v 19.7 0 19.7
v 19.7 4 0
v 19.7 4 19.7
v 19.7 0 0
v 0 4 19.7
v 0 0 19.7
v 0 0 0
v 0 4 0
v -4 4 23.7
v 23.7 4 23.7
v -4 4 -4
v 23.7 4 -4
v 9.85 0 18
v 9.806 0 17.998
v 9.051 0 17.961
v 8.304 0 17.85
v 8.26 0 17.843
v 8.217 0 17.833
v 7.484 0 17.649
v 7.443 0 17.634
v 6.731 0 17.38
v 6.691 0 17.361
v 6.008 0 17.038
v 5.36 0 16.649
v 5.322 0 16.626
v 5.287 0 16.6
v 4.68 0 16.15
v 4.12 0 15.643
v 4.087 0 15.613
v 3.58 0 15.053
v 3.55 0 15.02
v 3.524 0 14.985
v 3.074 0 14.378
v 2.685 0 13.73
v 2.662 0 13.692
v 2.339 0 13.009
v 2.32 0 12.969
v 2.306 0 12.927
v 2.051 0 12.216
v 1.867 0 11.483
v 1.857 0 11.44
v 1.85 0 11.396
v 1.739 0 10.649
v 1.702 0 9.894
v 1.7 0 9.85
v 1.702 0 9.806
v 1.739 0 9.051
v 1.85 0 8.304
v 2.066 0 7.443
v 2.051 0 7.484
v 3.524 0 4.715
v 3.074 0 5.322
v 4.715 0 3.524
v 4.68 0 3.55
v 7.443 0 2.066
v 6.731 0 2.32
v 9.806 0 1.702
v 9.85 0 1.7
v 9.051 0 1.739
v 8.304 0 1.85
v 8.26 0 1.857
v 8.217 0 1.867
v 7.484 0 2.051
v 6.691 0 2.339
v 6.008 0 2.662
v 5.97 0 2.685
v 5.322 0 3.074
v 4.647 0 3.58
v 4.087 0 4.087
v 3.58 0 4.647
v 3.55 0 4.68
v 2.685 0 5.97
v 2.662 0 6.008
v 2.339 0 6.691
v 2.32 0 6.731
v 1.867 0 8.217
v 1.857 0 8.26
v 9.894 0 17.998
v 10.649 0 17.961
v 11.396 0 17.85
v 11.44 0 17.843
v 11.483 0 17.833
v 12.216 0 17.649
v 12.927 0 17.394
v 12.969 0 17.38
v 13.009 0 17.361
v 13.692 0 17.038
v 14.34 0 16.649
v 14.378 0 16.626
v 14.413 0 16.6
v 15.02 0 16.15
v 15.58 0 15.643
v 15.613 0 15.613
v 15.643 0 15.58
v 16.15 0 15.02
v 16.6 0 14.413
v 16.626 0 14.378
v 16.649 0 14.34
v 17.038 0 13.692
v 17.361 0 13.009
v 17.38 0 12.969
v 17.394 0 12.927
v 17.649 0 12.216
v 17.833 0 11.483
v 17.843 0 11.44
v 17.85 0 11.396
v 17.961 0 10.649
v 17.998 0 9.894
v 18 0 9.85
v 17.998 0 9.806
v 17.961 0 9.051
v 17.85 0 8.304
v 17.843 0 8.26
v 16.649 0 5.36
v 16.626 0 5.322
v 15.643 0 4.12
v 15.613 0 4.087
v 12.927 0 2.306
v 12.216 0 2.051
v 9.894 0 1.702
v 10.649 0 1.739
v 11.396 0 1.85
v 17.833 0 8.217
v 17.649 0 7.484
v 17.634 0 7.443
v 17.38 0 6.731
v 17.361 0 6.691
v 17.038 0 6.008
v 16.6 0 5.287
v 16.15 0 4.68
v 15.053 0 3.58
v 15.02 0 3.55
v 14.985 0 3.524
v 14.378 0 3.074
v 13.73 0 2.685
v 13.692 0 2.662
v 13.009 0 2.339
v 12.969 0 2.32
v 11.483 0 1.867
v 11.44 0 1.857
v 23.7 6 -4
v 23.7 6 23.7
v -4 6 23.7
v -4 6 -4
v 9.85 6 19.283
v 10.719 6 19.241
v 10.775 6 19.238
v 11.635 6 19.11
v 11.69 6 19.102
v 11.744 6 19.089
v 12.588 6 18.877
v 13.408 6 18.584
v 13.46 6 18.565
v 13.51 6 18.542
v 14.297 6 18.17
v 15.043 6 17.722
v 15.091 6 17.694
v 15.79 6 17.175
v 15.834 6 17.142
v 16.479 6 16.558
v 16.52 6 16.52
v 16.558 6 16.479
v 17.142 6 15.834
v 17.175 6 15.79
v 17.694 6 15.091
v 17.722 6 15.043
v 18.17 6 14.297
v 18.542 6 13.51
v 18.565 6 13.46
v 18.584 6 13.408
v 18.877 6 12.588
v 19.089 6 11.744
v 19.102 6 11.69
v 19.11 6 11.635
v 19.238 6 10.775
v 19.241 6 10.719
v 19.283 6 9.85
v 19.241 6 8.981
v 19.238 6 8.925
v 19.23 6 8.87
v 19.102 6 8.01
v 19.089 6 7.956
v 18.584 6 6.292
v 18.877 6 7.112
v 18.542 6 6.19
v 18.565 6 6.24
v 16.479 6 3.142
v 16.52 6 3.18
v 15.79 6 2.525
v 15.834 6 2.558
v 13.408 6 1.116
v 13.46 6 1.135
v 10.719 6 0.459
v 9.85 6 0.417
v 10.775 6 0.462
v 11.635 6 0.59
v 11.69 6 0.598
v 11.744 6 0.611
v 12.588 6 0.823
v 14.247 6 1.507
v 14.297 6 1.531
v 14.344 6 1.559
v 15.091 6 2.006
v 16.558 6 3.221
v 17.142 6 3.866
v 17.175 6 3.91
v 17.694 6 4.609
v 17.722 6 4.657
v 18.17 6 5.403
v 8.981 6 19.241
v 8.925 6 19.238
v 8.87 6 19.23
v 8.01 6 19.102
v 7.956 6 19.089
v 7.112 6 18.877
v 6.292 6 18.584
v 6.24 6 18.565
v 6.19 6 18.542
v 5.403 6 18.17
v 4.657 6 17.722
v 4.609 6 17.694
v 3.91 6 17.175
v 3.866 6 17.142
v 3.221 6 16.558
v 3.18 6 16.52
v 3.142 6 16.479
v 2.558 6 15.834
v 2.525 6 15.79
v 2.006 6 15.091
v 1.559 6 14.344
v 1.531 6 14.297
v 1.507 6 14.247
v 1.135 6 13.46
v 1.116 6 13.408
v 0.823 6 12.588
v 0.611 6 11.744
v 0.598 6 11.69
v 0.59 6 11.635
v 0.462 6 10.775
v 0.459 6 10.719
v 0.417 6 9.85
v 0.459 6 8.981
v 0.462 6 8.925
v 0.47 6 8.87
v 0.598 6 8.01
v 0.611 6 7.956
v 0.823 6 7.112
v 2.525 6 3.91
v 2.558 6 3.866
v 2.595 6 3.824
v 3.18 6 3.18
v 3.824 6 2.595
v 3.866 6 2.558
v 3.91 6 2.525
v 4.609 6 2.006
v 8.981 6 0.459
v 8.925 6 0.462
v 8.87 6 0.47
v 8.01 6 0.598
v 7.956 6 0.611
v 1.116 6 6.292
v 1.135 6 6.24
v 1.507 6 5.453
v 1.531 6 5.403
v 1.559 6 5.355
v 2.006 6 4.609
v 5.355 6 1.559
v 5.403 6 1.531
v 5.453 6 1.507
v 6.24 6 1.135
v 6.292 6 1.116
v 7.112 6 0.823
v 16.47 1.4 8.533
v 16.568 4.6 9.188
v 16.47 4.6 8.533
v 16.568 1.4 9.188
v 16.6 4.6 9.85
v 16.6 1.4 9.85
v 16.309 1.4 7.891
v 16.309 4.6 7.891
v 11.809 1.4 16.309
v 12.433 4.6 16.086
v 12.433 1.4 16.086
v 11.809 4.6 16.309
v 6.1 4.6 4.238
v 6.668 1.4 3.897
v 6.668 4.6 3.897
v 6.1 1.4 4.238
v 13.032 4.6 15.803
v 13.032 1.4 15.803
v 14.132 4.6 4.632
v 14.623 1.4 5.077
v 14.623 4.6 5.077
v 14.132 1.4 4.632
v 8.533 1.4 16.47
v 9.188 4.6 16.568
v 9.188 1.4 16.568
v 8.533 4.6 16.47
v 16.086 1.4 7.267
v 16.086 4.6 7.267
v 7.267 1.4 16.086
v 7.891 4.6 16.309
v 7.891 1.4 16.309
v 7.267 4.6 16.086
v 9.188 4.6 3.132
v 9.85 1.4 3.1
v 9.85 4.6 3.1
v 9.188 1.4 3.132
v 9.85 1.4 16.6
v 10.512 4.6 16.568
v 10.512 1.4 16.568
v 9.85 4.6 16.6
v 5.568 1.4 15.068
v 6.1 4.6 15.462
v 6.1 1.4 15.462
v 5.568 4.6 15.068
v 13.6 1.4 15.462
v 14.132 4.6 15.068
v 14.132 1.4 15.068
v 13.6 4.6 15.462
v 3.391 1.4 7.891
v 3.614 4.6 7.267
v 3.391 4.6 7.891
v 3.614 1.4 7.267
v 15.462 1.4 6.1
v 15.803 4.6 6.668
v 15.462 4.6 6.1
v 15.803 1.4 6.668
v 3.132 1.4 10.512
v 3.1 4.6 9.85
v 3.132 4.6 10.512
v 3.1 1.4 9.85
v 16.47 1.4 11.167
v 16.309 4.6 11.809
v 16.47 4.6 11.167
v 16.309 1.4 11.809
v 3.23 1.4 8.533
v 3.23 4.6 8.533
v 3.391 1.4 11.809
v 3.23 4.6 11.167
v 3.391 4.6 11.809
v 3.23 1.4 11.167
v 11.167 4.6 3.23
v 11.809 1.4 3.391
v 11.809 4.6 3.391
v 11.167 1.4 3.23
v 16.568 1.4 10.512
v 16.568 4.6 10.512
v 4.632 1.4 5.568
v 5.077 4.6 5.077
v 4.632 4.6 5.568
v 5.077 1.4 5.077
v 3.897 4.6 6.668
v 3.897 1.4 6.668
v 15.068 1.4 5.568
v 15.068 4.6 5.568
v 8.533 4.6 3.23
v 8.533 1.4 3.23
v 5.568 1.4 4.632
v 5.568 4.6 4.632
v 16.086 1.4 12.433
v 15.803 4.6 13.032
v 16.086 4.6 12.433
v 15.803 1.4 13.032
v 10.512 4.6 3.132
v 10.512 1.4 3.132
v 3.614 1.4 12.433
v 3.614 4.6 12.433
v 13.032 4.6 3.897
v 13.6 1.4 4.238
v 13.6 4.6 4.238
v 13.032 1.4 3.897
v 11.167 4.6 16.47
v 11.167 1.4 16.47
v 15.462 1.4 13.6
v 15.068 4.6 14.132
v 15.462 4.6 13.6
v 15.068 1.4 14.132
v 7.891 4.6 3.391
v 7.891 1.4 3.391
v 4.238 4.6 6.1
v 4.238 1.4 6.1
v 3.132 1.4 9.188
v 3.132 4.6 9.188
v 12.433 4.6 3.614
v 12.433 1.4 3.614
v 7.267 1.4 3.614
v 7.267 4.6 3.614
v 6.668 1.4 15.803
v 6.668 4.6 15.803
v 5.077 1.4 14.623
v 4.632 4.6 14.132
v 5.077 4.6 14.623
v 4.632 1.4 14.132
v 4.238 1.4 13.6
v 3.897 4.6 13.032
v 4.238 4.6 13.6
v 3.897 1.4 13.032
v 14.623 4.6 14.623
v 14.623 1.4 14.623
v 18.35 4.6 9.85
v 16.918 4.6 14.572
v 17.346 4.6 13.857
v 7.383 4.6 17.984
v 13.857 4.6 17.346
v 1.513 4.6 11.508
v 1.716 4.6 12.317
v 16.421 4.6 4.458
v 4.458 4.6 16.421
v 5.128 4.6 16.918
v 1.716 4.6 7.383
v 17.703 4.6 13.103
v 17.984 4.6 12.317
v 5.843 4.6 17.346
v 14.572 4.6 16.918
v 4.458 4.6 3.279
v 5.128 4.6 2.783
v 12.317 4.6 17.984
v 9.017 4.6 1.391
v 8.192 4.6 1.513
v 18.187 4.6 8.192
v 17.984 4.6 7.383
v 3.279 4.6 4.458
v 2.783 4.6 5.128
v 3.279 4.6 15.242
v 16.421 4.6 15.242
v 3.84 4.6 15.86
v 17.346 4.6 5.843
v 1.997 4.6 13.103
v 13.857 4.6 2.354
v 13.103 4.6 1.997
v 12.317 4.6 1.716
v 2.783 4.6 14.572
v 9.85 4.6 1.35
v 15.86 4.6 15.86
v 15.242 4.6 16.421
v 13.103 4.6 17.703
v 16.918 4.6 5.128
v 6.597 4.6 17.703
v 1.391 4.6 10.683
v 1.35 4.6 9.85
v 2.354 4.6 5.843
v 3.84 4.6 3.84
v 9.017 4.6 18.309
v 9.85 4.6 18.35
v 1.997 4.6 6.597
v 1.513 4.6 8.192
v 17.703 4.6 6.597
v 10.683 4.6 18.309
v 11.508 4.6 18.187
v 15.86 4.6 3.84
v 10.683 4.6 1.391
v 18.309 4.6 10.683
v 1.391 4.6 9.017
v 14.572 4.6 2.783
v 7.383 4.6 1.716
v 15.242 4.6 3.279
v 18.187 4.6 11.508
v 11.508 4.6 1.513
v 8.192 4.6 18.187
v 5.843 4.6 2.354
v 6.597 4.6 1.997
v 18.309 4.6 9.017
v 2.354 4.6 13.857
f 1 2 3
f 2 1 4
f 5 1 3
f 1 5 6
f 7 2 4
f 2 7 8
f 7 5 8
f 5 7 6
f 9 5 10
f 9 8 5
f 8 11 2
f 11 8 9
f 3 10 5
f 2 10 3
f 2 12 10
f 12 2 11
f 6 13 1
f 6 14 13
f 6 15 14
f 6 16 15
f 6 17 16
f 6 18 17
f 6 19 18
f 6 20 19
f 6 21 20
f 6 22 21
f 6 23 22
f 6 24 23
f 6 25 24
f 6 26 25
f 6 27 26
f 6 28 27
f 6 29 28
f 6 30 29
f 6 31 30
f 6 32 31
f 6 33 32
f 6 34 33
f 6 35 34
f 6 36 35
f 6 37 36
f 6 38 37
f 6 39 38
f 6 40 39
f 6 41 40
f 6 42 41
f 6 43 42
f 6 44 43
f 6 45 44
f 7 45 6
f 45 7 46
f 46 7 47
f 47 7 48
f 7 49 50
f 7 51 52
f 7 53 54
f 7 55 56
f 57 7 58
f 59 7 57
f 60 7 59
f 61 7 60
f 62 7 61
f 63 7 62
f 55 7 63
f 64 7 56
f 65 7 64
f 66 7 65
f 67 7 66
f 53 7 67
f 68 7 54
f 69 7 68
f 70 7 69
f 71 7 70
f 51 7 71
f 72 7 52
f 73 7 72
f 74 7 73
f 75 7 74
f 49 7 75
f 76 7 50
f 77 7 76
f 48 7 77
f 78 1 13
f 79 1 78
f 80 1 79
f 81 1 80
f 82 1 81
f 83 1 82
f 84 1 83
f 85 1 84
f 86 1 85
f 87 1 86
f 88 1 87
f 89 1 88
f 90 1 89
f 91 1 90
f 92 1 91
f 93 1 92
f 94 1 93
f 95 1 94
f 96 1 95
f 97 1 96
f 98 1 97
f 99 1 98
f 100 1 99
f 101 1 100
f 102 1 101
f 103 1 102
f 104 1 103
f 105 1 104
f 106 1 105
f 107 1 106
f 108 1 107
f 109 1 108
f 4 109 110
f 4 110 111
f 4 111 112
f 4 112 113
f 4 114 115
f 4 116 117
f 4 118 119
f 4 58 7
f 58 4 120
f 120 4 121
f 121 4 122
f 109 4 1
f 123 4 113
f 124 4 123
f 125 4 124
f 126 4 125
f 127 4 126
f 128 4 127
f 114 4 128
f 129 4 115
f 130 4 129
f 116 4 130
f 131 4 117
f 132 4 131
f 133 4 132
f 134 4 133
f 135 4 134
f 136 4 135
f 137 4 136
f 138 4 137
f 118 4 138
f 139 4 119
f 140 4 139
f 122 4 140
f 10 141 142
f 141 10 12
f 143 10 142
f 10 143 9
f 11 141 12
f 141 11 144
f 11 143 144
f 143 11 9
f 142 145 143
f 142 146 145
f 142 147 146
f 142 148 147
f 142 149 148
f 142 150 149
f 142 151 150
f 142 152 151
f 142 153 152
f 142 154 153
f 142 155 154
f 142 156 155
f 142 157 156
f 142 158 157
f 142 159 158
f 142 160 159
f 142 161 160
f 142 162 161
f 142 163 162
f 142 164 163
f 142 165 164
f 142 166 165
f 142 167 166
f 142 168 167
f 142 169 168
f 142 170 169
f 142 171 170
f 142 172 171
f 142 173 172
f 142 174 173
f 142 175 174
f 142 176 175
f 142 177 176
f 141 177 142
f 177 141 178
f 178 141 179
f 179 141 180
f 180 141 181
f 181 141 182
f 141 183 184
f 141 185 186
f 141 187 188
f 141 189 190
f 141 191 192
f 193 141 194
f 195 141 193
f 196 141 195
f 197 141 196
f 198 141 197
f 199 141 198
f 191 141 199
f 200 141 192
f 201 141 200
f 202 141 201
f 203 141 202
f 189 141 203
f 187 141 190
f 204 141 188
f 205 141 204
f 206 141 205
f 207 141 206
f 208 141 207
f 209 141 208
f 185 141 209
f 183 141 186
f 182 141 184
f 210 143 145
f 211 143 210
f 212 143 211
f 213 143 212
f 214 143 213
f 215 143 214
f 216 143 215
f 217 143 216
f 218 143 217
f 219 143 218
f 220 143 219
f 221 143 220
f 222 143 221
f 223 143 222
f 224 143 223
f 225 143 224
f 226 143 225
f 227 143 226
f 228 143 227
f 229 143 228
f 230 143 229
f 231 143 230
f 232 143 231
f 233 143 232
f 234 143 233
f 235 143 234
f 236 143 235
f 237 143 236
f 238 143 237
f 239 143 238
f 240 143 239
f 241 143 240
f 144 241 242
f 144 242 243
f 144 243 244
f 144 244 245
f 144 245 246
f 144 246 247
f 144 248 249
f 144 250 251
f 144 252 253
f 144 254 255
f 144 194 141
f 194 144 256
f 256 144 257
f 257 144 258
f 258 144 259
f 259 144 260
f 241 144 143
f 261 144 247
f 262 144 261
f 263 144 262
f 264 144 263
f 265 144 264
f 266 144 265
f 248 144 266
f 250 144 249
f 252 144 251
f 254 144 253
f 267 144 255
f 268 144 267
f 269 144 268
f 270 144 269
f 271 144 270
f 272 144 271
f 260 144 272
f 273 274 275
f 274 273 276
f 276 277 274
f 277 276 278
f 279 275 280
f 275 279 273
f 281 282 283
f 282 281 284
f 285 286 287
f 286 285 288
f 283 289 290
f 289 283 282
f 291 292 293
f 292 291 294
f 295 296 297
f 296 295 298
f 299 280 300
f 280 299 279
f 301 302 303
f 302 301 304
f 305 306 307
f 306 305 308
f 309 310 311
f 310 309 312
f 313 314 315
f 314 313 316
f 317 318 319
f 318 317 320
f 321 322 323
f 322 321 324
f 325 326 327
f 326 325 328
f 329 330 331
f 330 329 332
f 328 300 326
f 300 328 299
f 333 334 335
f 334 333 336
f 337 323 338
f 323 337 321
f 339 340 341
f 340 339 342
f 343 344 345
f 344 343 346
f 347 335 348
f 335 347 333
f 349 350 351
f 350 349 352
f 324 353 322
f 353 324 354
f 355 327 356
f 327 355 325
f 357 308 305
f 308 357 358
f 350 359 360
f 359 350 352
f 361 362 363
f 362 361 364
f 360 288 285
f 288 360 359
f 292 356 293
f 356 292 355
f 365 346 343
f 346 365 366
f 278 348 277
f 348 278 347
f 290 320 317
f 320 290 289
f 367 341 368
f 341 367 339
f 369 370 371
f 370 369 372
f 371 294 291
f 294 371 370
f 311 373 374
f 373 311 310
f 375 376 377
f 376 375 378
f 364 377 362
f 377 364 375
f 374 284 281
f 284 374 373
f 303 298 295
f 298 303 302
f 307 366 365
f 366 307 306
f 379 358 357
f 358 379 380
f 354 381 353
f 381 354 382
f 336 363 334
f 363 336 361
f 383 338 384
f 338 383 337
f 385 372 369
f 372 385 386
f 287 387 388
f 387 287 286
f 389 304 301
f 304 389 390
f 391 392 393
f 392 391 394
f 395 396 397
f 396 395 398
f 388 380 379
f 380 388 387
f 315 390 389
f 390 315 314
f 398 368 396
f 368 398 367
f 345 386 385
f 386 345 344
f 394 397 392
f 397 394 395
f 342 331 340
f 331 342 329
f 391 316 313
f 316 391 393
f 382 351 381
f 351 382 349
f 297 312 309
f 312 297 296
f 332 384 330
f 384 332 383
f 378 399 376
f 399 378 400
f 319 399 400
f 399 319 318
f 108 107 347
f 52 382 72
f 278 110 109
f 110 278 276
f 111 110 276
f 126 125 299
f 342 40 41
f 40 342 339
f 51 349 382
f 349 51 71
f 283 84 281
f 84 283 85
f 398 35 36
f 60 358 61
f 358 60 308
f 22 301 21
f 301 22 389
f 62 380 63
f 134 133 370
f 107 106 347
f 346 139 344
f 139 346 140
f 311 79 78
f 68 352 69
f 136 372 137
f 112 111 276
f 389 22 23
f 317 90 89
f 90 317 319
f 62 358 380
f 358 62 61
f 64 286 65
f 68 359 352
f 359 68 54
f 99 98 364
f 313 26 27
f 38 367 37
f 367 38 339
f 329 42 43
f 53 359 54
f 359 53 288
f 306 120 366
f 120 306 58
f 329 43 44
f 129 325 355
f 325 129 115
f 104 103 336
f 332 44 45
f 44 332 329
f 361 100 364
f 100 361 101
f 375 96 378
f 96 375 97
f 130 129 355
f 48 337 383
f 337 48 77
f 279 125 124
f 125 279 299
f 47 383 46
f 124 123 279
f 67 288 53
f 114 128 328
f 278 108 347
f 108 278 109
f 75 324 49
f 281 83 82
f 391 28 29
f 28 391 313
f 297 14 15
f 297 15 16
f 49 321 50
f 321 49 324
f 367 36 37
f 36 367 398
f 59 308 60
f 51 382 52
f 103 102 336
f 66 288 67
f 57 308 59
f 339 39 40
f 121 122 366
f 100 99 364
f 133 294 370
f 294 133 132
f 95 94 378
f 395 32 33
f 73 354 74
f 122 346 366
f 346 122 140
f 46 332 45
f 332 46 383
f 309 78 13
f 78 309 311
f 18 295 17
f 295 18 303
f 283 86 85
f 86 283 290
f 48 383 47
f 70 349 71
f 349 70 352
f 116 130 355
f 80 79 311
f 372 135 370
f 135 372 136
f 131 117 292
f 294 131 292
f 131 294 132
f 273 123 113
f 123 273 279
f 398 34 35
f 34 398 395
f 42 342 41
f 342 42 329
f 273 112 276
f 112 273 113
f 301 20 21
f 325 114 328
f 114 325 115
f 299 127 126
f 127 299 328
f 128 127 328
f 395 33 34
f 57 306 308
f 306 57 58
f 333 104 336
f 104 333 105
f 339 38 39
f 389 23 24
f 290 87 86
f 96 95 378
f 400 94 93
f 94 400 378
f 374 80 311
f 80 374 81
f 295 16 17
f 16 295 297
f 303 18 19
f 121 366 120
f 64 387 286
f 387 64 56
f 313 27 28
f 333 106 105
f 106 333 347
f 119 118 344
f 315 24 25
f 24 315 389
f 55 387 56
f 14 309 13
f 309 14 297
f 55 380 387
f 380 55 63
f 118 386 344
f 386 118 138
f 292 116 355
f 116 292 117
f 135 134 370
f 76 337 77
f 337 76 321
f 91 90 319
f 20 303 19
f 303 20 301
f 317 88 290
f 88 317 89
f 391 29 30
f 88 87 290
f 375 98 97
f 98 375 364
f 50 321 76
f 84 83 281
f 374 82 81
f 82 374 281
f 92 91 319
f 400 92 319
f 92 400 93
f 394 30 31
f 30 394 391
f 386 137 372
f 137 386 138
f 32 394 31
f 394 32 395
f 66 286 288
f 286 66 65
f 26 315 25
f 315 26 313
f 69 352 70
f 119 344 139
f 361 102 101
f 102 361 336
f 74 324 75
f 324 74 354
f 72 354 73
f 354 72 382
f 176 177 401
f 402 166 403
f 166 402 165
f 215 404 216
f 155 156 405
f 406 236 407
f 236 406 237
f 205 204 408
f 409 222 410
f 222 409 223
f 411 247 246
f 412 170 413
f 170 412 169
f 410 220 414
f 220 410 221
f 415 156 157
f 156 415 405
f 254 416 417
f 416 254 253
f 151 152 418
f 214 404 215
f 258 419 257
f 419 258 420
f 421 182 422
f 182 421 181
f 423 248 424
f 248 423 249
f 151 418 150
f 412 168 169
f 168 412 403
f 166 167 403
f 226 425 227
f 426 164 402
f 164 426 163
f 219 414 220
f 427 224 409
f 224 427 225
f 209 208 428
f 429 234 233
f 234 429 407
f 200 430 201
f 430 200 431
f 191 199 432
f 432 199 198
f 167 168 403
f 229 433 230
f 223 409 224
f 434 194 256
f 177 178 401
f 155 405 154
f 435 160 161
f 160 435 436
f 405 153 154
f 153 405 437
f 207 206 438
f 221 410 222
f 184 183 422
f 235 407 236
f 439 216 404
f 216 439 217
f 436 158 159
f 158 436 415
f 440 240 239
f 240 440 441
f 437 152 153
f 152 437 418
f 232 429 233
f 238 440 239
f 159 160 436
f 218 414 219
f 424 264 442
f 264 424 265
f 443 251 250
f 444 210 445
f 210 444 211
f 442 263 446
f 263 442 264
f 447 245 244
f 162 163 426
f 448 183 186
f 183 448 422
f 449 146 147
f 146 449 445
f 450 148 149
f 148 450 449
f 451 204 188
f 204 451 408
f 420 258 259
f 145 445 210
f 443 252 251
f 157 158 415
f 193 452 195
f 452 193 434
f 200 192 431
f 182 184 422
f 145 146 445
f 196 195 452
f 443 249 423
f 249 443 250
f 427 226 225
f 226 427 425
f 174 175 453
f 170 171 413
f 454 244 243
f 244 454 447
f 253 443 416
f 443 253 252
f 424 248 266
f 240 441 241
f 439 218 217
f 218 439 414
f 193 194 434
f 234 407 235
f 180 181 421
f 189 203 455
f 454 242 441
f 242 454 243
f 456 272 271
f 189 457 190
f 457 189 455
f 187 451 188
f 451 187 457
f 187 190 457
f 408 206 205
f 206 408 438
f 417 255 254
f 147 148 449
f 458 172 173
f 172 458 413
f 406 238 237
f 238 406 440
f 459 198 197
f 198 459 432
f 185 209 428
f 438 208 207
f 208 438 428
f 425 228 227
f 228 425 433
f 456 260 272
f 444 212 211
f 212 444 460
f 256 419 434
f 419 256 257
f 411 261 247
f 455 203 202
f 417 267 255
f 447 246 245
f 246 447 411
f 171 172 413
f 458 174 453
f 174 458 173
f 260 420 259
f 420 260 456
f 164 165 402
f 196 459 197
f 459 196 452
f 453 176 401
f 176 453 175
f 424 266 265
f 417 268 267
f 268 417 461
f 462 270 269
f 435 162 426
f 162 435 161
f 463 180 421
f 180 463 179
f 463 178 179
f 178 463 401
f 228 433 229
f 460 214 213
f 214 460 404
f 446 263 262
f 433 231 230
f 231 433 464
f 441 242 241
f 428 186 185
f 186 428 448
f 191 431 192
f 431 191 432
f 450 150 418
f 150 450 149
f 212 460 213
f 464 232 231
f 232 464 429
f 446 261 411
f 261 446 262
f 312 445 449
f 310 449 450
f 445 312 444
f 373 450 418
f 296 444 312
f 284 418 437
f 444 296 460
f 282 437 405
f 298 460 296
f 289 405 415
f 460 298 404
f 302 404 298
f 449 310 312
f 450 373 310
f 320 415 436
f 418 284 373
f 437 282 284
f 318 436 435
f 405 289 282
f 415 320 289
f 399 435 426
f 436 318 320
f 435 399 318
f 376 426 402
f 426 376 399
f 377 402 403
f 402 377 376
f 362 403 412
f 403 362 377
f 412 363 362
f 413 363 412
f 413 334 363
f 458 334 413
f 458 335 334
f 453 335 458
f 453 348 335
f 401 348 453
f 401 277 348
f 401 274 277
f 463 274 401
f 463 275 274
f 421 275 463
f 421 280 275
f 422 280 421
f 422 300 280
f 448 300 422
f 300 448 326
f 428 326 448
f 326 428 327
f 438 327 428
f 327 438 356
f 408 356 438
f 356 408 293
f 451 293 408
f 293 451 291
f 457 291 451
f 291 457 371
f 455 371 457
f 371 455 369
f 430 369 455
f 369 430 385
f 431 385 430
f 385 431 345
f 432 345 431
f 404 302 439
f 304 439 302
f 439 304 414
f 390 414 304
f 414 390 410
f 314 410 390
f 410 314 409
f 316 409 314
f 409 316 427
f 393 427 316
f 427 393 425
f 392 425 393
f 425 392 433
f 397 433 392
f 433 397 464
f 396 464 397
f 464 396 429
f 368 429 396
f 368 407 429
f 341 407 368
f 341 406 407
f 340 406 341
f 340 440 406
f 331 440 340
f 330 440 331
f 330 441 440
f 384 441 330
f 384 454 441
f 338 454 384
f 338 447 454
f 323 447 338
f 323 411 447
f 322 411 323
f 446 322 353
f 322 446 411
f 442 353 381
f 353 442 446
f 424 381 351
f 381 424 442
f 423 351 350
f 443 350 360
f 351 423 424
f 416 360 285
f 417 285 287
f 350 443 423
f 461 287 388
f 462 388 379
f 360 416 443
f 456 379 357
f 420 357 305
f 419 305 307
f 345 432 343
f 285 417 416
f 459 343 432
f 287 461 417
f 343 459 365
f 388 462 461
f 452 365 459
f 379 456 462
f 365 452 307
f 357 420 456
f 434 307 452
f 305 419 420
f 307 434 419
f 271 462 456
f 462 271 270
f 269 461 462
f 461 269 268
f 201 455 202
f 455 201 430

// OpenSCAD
// ============================================================
//  MSE-6 — Camera Viewport Bezel
//  Press-fit insert for the bottom shell front wall.
//  Provides a clear aperture for the IMX500 lens while
//  keeping the shell aesthetically closed.
//
//  Shell front wall: X=81–127mm (46mm wide), Z=10–43mm (33mm tall)
//  Wall thickness: ~4mm
//  Camera lens OD: 12.4mm (IMX500 dome)
//
//  Install: push into a 20×20mm square cutout in the shell
//           front wall, centred at X=104, Z=26 (mid-wall).
//           Glue or press-fit. Lens sits flush with outer face.
// ============================================================
$fn = 64;

// Shell wall aperture dimensions
aperture_w   = 20.0;   // square cutout width
aperture_h   = 20.0;   // square cutout height
wall_t       =  4.0;   // shell wall thickness (bezel depth)
flange_w     =  4.0;   // flange overhang on interior side
flange_t     =  2.0;   // flange thickness (stops bezel going too deep)

// Lens window
lens_d       = 13.5;   // clear aperture (IMX500 dome 12.4mm + 1.1mm clearance)
// Decorative outer ring
outer_d      = 17.0;   // chamfered outer ring OD on shell exterior face

// Press-fit body
body_w       = aperture_w - 0.3;  // slight undersize for press fit
body_h       = aperture_h - 0.3;
body_d       = wall_t;             // fills full wall thickness

module bezel() {
    difference() {
        union() {
            // Press-fit body
            cube([body_w, body_d, body_h]);

            // Interior flange (stops body from passing through)
            translate([-flange_w, body_d, -flange_w])
                cube([body_w + flange_w*2,
                      flange_t,
                      body_h + flange_w*2]);
        }

        // Lens aperture (centred in body)
        translate([body_w/2, -0.1, body_h/2])
            rotate([-90, 0, 0])
                cylinder(d = lens_d, h = body_d + flange_t + 0.2);

        // Chamfer on lens aperture exterior face
        translate([body_w/2, -0.1, body_h/2])
            rotate([-90, 0, 0])
                cylinder(d1 = lens_d + 3, d2 = lens_d,
                         h = 1.5);

        // Decorative chamfer ring on interior face
        translate([body_w/2, body_d + flange_t + 0.1, body_h/2])
            rotate([90, 0, 0])
                cylinder(d1 = outer_d + 2, d2 = outer_d,
                         h = 1.5);
    }
}

bezel();
